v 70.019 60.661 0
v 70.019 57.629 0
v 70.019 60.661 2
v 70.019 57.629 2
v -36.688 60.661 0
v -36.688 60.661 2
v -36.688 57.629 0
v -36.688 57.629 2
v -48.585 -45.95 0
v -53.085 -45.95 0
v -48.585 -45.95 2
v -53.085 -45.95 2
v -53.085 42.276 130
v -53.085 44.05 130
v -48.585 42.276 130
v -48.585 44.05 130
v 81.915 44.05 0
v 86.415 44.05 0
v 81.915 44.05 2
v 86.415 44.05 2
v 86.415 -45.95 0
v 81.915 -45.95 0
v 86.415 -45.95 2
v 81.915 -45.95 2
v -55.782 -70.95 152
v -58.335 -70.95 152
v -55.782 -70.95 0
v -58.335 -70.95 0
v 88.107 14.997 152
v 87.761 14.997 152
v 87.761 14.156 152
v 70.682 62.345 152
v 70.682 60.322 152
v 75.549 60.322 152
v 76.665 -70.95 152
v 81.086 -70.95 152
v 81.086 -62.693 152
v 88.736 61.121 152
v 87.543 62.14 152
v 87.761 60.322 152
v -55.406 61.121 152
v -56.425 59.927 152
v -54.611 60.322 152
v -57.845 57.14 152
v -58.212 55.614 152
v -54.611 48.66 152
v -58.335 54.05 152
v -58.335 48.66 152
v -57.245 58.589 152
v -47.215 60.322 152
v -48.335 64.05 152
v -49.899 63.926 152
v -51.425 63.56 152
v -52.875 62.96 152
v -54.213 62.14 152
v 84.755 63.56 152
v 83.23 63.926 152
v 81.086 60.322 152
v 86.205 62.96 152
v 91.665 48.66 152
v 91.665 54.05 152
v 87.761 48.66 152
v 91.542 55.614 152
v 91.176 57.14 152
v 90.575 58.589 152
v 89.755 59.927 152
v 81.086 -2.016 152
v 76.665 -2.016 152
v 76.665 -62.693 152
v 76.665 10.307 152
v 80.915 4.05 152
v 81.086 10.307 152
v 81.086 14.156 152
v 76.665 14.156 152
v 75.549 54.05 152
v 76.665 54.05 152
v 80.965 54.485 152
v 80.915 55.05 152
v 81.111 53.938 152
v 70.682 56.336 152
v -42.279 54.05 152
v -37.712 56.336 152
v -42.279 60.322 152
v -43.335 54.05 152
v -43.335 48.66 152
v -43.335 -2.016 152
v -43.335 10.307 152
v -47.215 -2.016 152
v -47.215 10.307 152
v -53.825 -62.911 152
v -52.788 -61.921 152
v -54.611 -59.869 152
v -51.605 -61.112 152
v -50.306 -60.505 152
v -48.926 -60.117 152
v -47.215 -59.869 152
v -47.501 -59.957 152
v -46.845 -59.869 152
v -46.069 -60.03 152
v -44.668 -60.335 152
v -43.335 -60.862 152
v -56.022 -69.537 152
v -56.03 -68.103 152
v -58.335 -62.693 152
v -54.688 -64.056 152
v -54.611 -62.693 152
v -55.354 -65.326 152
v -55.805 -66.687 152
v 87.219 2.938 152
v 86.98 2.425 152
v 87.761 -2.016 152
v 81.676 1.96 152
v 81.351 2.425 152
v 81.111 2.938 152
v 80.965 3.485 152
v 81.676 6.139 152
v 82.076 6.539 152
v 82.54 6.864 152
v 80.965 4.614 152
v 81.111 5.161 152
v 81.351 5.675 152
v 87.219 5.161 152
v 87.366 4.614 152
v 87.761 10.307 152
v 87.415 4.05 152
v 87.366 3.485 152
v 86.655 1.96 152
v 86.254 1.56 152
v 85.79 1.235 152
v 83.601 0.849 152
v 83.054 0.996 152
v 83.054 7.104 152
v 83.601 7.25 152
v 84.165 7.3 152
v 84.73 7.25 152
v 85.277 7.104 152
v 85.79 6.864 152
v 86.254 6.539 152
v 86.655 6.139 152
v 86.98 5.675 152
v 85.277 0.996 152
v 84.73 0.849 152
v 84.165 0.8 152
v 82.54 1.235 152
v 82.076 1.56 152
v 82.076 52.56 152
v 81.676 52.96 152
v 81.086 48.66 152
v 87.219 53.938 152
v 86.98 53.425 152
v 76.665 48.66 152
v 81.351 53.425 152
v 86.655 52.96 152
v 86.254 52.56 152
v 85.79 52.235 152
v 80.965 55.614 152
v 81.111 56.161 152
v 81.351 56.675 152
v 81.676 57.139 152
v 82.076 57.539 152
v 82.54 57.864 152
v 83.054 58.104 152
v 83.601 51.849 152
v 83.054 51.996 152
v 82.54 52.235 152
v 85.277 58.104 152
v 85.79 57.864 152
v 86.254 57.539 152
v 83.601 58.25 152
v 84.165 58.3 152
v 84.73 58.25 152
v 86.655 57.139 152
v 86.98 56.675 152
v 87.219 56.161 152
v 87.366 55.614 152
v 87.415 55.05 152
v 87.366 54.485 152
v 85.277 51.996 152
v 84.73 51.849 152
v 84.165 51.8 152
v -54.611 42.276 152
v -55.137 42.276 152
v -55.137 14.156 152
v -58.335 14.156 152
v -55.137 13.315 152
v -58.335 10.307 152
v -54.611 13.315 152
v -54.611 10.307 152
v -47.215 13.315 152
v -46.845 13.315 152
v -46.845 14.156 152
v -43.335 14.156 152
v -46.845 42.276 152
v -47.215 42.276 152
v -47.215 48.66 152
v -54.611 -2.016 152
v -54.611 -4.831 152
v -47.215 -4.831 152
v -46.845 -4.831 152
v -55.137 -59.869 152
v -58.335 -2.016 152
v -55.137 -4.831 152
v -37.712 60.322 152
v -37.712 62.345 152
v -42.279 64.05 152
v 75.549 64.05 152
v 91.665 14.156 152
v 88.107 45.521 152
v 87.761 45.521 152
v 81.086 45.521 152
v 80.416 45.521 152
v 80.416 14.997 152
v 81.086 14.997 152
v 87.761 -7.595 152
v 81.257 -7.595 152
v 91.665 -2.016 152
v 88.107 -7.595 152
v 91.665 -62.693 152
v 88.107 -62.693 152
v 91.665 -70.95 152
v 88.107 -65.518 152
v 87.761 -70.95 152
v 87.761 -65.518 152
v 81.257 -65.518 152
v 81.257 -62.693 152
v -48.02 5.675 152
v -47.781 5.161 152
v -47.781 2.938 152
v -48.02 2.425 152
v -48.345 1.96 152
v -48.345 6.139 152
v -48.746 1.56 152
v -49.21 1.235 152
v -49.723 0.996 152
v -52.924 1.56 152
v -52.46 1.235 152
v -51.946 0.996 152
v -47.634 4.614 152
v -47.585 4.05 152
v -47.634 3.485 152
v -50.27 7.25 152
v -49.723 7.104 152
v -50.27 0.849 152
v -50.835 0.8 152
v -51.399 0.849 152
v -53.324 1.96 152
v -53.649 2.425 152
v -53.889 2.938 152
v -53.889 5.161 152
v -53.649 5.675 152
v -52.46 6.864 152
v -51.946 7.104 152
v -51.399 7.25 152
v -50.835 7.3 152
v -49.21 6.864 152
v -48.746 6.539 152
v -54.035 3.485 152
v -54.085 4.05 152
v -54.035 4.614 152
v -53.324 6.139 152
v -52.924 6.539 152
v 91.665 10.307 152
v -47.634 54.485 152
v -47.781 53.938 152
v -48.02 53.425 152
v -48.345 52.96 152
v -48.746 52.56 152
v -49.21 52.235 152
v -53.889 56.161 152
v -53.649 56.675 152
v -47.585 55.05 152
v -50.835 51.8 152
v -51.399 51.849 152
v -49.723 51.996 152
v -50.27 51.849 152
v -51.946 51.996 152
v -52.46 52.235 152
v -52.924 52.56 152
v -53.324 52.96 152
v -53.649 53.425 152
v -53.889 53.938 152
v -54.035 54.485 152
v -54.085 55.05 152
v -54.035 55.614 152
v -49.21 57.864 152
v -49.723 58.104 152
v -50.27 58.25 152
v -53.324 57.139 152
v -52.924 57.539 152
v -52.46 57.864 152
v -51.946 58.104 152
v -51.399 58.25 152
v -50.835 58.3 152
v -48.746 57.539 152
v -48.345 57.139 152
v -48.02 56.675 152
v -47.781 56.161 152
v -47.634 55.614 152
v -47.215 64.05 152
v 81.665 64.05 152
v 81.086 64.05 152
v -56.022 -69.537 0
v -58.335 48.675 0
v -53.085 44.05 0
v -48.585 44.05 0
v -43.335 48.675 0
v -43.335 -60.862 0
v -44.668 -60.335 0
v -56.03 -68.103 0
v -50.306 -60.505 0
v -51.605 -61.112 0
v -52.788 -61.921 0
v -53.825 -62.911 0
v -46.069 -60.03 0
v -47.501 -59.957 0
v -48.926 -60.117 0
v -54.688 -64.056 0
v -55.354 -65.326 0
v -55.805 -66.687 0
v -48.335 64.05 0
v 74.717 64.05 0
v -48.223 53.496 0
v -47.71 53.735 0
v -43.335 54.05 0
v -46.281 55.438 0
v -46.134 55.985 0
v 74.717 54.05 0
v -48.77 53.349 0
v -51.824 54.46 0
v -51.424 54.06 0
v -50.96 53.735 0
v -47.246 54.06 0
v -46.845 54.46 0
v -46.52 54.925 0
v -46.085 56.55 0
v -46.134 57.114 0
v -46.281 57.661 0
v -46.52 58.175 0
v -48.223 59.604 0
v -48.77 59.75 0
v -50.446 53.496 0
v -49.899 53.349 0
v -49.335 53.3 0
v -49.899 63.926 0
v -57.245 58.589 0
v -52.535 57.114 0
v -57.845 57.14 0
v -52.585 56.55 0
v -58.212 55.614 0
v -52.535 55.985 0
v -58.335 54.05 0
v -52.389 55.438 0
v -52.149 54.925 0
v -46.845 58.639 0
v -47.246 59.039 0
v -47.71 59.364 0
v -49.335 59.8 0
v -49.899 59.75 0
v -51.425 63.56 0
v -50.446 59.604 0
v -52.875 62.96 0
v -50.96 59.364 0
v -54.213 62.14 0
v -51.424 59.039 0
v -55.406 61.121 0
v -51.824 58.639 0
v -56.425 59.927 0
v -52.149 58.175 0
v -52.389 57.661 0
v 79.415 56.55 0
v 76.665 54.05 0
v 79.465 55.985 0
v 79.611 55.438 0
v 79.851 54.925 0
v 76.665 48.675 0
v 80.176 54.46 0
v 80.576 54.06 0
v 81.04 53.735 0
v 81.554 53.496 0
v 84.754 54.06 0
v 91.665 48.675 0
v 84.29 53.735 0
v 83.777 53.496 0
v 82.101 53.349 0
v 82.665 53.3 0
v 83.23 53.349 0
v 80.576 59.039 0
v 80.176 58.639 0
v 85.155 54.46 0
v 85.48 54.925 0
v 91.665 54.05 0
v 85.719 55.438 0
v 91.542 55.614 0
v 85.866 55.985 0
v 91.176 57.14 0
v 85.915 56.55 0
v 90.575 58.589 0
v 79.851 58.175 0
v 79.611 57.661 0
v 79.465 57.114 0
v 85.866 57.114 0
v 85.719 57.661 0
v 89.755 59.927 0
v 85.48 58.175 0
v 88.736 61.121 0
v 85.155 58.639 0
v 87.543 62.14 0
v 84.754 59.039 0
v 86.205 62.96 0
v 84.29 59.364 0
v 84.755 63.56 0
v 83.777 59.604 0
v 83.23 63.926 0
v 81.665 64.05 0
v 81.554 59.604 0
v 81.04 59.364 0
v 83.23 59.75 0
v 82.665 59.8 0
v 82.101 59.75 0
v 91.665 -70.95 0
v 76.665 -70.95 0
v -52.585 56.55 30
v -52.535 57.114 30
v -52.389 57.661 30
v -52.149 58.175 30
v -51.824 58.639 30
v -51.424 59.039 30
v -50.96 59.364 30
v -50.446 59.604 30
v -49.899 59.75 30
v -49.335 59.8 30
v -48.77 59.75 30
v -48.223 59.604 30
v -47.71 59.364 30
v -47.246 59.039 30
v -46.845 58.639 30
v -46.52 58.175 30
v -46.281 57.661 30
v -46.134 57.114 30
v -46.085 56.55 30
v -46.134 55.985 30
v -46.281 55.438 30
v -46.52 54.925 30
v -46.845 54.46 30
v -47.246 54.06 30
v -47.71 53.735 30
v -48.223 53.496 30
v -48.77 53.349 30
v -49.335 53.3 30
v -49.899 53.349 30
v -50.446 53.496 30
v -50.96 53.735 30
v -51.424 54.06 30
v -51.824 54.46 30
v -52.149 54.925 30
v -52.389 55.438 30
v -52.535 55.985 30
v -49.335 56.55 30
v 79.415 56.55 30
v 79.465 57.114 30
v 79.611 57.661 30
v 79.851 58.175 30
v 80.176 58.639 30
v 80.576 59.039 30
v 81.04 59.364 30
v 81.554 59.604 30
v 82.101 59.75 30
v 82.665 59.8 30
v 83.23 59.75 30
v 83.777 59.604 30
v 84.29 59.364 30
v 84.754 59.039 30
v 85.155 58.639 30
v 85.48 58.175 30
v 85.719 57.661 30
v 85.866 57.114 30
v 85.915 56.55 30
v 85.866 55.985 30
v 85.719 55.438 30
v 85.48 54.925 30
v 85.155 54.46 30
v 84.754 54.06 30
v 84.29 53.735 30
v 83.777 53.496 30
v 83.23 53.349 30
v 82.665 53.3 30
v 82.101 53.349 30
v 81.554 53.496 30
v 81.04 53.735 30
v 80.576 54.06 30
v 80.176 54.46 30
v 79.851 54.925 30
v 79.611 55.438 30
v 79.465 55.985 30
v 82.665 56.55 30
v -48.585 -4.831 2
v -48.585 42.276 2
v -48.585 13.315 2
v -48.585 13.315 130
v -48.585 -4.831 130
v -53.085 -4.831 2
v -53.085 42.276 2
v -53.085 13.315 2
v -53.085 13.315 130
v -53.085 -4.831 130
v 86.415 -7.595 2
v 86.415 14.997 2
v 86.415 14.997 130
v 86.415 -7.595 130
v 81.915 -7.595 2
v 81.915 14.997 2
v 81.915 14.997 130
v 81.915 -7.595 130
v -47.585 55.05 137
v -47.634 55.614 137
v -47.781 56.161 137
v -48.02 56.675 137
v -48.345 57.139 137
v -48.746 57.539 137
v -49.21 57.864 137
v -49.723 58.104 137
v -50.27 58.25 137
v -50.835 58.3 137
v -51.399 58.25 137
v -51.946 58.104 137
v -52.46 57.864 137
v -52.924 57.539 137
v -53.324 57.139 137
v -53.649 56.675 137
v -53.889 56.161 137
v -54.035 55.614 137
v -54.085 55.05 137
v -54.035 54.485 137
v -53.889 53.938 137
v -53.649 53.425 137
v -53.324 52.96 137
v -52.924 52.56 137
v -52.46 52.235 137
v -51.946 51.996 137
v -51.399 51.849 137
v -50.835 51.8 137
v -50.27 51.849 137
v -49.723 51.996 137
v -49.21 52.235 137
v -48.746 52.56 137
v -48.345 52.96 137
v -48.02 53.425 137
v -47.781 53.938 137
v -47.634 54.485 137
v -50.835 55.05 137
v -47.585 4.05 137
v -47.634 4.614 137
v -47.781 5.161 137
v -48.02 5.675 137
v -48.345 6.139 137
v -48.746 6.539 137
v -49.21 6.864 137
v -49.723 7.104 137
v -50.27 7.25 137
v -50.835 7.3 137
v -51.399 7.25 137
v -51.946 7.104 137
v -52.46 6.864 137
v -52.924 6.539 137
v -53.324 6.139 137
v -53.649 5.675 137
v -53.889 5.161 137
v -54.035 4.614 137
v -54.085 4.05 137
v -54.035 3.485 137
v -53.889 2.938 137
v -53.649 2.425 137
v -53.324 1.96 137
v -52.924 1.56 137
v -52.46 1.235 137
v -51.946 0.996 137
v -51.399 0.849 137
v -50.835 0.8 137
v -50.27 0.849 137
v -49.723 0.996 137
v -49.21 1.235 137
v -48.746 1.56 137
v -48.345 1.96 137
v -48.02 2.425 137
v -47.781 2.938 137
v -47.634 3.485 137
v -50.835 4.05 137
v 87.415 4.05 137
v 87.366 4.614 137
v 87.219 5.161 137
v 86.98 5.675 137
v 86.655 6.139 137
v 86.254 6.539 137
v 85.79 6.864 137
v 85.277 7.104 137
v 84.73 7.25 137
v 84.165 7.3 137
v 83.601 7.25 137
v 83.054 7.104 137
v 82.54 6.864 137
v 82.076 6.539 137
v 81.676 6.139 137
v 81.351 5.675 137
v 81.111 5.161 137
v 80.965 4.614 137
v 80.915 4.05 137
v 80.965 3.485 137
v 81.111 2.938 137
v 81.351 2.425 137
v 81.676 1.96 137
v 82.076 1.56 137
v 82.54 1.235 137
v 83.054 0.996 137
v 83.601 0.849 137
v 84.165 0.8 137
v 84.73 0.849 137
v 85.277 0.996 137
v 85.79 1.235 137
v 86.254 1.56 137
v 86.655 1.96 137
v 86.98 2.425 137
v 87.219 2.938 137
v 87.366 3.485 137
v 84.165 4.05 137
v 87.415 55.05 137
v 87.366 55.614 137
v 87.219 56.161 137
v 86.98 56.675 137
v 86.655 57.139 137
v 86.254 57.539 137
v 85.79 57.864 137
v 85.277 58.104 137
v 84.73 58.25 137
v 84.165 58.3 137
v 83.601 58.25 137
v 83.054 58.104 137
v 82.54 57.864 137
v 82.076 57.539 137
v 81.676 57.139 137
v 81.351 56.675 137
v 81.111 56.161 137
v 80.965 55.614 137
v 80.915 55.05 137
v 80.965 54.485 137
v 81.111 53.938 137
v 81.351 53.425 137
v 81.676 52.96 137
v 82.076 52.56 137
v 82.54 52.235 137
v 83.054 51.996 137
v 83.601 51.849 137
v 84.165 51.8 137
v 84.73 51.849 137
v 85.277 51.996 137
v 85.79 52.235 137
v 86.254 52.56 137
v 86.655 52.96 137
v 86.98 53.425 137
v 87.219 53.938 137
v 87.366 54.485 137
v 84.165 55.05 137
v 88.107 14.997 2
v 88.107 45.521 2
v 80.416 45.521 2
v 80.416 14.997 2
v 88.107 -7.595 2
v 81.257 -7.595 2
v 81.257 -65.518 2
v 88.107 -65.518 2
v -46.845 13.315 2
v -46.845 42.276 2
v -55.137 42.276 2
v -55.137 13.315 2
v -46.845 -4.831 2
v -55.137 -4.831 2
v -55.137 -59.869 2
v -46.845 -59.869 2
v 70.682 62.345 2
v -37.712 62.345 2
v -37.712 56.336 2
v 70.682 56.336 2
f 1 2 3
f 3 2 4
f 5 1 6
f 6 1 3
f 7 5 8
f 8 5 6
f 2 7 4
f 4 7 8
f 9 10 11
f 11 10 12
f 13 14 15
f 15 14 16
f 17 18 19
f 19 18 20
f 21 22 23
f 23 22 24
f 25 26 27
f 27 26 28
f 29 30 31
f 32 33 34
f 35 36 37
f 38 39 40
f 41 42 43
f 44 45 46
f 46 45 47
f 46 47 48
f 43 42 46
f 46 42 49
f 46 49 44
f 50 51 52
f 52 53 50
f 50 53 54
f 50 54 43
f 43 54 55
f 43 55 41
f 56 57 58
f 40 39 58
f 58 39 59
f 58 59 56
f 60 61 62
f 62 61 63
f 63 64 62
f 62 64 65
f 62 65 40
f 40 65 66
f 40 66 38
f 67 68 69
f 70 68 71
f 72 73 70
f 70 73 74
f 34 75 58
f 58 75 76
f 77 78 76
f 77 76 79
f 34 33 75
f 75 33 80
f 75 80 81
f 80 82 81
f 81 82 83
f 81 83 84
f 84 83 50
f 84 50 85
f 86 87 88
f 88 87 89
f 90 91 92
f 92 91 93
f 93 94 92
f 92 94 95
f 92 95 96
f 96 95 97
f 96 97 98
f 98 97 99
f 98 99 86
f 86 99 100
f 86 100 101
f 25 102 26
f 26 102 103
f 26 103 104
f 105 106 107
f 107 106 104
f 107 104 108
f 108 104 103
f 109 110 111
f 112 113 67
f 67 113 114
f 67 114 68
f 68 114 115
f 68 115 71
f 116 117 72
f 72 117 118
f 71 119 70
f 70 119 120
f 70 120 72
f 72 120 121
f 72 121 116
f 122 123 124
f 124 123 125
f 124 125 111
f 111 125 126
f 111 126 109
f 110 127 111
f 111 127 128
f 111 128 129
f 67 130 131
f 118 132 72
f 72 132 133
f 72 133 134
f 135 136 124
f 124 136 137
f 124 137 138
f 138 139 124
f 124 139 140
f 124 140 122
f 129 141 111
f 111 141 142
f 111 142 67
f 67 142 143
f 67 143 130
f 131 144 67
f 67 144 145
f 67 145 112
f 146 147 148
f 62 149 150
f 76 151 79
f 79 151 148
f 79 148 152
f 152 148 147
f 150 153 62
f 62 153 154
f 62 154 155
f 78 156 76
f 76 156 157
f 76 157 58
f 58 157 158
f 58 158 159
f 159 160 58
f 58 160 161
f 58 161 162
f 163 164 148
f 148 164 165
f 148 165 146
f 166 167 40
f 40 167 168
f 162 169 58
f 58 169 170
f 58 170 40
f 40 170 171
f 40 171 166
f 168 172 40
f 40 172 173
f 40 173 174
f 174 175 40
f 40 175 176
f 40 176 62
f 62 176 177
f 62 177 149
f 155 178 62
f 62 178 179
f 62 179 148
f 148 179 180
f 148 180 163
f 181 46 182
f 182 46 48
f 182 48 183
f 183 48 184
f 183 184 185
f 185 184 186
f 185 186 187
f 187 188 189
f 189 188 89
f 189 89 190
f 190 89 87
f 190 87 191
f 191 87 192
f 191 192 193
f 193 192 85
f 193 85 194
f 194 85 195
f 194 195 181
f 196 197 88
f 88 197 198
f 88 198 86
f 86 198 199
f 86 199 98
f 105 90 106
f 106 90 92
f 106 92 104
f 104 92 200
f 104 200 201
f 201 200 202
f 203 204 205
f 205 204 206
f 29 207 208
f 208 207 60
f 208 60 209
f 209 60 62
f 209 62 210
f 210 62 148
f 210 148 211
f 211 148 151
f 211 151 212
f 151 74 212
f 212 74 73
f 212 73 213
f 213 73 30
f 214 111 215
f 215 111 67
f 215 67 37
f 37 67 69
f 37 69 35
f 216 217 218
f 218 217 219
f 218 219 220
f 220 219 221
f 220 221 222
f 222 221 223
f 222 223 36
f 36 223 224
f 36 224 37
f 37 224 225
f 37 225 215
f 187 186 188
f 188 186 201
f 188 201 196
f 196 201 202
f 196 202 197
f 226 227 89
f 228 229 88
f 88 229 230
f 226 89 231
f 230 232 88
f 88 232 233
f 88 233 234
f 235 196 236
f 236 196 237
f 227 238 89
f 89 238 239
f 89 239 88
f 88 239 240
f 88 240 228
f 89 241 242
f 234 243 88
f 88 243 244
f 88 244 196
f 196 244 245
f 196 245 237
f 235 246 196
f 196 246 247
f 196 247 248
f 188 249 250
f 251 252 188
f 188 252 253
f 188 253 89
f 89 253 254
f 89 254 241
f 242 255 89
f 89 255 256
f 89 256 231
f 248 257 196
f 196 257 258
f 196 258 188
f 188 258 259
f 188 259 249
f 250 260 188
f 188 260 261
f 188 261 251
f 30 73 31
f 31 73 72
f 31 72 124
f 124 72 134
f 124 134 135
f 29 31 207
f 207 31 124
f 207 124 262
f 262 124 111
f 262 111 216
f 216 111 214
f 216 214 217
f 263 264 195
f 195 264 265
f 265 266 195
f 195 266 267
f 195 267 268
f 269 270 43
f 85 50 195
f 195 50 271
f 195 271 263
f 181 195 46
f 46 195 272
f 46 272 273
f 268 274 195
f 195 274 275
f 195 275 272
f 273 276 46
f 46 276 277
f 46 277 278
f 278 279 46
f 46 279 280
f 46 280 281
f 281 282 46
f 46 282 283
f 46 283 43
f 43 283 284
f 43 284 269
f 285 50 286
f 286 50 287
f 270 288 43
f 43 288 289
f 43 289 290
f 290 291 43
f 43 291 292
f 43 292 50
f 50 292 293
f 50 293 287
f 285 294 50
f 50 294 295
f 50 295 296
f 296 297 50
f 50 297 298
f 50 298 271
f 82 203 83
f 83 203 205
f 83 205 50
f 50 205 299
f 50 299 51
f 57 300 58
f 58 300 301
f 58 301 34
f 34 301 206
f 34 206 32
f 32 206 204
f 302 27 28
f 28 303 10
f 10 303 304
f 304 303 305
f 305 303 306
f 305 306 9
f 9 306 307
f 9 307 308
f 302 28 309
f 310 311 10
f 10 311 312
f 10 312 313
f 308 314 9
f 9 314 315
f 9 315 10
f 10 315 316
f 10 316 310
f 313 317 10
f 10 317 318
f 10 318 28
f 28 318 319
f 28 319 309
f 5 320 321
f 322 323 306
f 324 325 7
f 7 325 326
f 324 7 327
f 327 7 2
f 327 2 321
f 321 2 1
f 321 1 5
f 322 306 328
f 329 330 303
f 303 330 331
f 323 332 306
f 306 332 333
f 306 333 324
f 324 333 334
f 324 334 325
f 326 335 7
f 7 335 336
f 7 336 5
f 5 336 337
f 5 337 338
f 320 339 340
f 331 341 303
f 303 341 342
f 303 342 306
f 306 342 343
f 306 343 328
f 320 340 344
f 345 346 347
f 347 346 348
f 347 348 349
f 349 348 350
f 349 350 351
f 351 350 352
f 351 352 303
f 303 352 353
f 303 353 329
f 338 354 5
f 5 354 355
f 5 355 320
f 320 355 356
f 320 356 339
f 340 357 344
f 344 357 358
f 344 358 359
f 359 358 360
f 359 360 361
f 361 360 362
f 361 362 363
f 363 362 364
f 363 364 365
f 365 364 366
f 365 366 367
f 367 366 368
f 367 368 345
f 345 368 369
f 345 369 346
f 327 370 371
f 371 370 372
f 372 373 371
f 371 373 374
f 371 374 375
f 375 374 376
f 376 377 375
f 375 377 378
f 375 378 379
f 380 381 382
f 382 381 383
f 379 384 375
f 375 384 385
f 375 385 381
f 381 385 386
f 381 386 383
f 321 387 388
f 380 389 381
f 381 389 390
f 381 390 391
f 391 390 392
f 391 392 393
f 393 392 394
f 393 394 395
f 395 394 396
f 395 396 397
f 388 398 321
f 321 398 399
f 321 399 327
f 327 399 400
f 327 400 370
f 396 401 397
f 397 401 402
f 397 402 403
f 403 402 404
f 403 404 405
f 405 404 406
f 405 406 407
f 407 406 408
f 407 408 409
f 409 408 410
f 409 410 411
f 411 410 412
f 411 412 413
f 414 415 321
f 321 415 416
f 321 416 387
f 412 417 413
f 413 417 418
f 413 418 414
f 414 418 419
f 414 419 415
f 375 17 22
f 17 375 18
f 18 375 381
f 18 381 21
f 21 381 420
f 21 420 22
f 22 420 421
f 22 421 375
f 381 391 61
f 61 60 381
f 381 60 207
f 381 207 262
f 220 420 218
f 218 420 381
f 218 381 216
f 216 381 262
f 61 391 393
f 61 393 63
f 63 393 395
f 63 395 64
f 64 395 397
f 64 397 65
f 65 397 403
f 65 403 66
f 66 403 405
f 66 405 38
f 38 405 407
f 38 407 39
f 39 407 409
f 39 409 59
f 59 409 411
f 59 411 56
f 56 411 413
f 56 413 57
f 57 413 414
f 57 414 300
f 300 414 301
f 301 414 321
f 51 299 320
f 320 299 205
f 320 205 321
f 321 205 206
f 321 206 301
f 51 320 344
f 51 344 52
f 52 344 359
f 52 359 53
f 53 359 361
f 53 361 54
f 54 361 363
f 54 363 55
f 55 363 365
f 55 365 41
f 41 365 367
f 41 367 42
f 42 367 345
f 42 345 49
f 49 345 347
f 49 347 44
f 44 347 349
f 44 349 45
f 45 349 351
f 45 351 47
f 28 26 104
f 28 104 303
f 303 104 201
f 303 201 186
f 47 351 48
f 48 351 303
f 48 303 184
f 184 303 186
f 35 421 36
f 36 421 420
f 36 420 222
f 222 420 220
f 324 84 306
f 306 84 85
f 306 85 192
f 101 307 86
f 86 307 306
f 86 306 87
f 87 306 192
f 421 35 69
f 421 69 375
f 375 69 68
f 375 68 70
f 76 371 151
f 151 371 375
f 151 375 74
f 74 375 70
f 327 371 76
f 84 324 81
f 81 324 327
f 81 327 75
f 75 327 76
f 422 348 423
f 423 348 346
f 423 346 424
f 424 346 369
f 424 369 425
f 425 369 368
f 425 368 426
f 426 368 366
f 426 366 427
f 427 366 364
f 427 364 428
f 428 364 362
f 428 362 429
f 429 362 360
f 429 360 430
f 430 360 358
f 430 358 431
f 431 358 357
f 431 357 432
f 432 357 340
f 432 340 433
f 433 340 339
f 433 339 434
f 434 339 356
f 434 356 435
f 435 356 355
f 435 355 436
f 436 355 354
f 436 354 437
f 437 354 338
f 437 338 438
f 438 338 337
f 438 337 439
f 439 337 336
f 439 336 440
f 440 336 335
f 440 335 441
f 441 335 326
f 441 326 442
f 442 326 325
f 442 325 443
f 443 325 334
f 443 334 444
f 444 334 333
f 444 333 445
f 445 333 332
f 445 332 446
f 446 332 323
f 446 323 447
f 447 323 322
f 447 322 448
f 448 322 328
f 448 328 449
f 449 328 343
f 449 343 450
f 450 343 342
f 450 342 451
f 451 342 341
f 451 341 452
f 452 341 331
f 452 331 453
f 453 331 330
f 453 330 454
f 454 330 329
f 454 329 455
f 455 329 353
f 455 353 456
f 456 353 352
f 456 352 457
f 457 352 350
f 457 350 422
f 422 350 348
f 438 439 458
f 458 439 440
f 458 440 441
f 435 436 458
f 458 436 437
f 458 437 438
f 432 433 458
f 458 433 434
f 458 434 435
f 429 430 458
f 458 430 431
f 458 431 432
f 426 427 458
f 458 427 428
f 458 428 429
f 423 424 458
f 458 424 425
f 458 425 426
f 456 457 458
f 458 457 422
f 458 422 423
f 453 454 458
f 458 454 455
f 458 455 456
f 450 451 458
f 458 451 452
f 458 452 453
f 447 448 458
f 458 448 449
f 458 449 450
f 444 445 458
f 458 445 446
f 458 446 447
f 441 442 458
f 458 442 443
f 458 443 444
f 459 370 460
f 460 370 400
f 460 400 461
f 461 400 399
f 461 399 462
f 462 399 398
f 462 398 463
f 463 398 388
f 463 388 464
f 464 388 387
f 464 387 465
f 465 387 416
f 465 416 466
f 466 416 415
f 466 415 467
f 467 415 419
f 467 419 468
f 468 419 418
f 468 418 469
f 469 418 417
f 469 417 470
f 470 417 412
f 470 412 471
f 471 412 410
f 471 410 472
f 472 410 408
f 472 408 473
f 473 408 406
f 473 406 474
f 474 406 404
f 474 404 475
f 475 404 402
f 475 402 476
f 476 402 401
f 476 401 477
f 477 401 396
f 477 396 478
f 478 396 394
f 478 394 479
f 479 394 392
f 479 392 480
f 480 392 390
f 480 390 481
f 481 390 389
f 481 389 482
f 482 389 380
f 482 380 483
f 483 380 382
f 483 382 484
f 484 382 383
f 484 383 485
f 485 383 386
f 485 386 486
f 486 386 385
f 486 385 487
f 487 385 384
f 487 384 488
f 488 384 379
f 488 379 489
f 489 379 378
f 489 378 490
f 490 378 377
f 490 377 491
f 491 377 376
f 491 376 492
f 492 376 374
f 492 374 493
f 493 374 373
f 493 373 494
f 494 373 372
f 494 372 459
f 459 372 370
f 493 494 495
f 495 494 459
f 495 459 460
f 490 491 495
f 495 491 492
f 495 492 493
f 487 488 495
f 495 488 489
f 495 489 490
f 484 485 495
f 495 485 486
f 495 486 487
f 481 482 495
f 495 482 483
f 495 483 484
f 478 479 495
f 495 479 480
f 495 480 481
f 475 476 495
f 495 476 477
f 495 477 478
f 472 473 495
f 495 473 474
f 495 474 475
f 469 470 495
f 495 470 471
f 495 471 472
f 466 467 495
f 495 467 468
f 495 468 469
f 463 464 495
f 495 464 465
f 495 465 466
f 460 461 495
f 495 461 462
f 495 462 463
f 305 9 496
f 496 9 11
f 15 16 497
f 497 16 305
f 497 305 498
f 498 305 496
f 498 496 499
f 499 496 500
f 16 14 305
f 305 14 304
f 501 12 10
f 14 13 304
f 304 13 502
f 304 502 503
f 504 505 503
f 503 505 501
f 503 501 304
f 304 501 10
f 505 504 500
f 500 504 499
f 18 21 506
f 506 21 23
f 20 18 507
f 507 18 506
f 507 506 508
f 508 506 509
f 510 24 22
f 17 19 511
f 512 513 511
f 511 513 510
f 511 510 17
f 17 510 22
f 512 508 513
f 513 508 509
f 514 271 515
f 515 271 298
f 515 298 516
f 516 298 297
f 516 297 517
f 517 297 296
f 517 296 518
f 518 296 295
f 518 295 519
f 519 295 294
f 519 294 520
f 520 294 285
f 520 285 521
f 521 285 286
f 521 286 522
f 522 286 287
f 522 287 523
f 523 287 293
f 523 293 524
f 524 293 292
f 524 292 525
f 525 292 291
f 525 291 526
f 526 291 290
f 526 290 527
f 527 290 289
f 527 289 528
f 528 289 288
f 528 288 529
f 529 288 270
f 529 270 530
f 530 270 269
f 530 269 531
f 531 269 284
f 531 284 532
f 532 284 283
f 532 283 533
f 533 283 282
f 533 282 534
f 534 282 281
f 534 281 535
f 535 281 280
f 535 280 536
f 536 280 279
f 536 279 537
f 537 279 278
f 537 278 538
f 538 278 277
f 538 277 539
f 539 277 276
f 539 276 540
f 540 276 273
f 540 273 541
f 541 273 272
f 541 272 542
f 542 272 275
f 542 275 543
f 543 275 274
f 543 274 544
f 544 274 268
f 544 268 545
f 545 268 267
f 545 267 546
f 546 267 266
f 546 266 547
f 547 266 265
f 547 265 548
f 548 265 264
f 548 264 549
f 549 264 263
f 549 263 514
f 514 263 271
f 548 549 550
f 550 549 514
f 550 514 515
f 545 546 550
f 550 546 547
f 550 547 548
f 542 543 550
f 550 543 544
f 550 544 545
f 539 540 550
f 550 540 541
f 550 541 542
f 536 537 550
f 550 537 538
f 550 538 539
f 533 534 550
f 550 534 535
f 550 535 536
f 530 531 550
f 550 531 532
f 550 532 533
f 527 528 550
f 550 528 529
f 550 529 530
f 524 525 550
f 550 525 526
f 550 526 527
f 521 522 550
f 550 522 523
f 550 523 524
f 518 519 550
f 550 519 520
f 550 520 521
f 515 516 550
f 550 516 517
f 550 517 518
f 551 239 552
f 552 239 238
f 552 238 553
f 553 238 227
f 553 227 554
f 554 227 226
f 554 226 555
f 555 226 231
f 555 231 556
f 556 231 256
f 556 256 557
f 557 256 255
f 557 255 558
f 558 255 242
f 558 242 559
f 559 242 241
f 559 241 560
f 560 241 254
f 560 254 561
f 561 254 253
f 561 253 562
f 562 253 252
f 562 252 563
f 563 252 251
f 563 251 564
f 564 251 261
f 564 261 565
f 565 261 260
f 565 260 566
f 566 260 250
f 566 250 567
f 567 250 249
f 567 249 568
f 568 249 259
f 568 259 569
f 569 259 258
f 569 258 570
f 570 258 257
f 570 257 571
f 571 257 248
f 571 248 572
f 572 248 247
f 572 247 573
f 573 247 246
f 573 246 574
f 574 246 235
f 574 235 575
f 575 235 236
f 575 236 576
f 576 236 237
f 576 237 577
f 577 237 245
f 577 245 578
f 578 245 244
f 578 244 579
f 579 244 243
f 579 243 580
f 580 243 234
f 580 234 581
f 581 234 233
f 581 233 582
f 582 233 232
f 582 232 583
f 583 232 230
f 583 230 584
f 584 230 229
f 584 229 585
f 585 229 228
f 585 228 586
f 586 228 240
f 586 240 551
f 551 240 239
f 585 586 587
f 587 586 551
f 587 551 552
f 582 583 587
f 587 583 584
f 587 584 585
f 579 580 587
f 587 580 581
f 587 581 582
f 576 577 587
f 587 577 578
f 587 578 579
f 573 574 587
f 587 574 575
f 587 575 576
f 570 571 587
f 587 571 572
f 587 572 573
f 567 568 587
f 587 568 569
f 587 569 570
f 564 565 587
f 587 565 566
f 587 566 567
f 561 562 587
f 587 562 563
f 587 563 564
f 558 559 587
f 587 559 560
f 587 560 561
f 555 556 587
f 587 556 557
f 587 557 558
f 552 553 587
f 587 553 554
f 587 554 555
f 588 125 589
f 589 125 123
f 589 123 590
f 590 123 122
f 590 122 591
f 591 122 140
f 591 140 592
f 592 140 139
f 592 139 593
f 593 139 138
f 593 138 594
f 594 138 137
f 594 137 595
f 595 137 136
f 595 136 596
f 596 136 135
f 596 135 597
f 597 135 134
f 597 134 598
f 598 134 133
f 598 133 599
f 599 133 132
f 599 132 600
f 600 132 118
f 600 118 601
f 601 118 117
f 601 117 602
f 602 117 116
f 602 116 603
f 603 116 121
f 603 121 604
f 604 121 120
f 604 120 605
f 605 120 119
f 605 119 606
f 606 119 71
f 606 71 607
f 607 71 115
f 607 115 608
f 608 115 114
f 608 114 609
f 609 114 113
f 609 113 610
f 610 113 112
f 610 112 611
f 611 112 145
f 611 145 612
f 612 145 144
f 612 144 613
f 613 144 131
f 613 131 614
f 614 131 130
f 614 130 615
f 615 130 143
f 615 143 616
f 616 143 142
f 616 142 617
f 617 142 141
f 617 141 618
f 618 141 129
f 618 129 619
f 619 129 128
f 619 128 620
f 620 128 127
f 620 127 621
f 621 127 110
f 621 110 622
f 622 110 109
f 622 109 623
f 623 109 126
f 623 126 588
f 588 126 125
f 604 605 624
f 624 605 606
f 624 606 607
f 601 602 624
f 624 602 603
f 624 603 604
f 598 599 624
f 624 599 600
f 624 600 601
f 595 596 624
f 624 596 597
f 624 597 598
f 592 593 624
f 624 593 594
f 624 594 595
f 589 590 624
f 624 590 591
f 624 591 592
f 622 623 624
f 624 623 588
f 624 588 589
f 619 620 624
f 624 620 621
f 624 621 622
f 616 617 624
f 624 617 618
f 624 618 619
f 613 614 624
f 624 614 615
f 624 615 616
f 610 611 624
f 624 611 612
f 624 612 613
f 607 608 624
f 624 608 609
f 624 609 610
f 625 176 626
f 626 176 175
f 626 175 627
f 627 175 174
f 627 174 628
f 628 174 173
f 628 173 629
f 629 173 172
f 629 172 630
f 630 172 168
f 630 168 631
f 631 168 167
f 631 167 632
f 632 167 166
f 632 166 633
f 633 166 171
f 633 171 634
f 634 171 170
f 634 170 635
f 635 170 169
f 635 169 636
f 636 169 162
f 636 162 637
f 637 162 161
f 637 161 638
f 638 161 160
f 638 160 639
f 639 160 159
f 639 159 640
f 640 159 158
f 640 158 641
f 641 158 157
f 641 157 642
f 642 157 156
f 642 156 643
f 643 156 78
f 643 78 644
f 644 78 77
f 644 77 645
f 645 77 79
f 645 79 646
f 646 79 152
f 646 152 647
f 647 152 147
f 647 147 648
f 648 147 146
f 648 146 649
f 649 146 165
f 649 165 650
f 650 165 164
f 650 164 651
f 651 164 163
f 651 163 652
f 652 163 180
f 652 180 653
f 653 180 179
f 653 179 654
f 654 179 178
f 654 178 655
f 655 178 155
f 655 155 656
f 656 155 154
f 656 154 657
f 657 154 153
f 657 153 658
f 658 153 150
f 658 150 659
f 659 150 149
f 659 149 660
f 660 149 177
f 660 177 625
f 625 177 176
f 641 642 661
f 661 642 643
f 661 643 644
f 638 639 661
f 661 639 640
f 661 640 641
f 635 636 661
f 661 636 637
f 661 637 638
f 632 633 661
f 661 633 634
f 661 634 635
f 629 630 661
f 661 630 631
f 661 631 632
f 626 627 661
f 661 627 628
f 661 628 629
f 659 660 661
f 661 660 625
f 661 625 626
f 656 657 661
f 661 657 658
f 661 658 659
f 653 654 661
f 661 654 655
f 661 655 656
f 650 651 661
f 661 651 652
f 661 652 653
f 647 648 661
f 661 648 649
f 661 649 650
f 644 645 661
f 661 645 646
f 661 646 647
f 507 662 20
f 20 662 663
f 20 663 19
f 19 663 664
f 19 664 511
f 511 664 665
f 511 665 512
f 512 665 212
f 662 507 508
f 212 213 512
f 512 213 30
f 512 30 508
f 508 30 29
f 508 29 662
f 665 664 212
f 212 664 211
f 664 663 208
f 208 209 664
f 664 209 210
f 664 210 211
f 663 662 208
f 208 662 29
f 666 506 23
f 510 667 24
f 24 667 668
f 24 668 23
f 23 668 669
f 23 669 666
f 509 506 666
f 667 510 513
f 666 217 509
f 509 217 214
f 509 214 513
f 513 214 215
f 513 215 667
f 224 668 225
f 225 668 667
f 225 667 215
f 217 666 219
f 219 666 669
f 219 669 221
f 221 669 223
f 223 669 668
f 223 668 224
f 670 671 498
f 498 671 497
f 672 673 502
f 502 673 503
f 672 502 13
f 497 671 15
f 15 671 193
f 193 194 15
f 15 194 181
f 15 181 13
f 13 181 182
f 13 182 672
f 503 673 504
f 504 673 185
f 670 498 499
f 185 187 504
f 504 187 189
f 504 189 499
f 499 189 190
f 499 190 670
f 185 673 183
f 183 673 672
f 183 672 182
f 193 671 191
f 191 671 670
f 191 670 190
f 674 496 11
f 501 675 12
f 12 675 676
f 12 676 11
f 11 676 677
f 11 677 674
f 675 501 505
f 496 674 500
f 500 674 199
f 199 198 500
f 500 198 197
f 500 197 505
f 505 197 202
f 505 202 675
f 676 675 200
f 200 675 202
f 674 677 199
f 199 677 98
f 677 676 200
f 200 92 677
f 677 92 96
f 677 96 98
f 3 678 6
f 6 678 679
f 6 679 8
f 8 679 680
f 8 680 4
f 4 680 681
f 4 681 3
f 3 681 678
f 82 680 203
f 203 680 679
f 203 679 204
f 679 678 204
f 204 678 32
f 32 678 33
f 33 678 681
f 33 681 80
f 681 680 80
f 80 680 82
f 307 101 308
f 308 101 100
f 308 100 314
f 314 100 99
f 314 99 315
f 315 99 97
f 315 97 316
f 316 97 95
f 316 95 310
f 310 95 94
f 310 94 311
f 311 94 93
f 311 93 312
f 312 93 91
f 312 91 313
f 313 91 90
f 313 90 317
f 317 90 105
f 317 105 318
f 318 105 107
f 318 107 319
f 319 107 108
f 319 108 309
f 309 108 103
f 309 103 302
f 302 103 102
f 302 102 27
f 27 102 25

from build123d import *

# Parameters (mm, degrees)
SKETCH2_W           = 120
SKETCH2_H           = 115
BOSS_EXTRUDE1_DEPTH = 152
SKETCH3_W           = 120
SKETCH3_H           = 13.389184999
CUT_EXTRUDE1_DEPTH  = 192.155706765
SKETCH5_R           = 3.25
CUT_EXTRUDE2_DEPTH  = 30
SKETCH6_W           = 4.5
SKETCH6_H           = 90
SKETCH6_W_2         = 106.706999447
SKETCH6_H_2         = 3.032111459
CUT_EXTRUDE4_DEPTH  = 130
SKETCH7_R           = 3.25
CUT_EXTRUDE5_DEPTH  = 15
SKETCH8_W           = 8.291807731
SKETCH8_H           = 28.961241497
SKETCH8_H_2         = 55.038375958
SKETCH8_W_2         = 108.394356143
SKETCH8_H_3         = 6.008556327
SKETCH8_W_3         = 7.690952099
SKETCH8_H_4         = 30.523466142
SKETCH8_W_4         = 6.849754213
SKETCH8_H_5         = 57.922482994
CUT_EXTRUDE6_DEPTH  = 150
CUT_EXTRUDE7_DEPTH  = 192.155706765


with BuildPart() as part:
    # Sketch2 → Boss-Extrude1 (new body)
    with BuildSketch(Plane.XY):
        with BuildLine():
            Line((-48.334664537, 64.049520767), (81.665335463, 64.049520767))
            ThreePointArc((81.665335463, 64.049520767), (88.736403275, 61.120588579), (91.665335463, 54.049520767))
            Line((91.665335463, 54.049520767), (91.665335463, -70.950479233))
            Line((91.665335463, -70.950479233), (-58.334664537, -70.950479233))
            Line((-58.334664537, -70.950479233), (-58.334664537, 54.049520767))
            ThreePointArc((-58.334664537, 54.049520767), (-55.405732349, 61.120588579), (-48.334664537, 64.049520767))
        make_face()
        with Locations((16.665335463, -3.450479233)):
            Rectangle(SKETCH2_W, SKETCH2_H, mode=Mode.SUBTRACT)
    extrude(amount=BOSS_EXTRUDE1_DEPTH)

    # Sketch3 → Cut-Extrude1 (cut, through all)
    with BuildSketch(Plane.XY.offset(152)):
        with Locations((16.665335463, -67.645071732)):
            Rectangle(SKETCH3_W, SKETCH3_H)
    extrude(amount=-CUT_EXTRUDE1_DEPTH, mode=Mode.SUBTRACT)

    # Sketch5 → Cut-Extrude2 (cut)
    with BuildSketch(Plane(origin=(0, 0, 0), x_dir=(-1, 0, 0), z_dir=(0, 0, -1))):
        with Locations((-82.665335463, 56.549520767)):
            Circle(SKETCH5_R)
        with Locations((49.334664537, 56.549520767)):
            Circle(SKETCH5_R)
    extrude(amount=-CUT_EXTRUDE2_DEPTH, mode=Mode.SUBTRACT)

    # Sketch6 → Cut-Extrude4 (cut)
    with BuildSketch(Plane(origin=(0, 0, 0), x_dir=(-1, 0, 0), z_dir=(0, 0, -1))):
        with Locations((50.834664537, -0.950479233)):
            Rectangle(SKETCH6_W, SKETCH6_H)
        with Locations((-84.165335463, -0.950479233)):
            Rectangle(SKETCH6_W, SKETCH6_H)
        with Locations((-16.665335464, 59.14514242)):
            Rectangle(SKETCH6_W_2, SKETCH6_H_2)
    extrude(amount=-CUT_EXTRUDE4_DEPTH, mode=Mode.SUBTRACT)

    # Sketch7 → Cut-Extrude5 (cut)
    with BuildSketch(Plane.XY.offset(152)):
        with Locations((-50.834664537, 55.049520767)):
            Circle(SKETCH7_R)
        with Locations((-50.834664537, 4.049520767)):
            Circle(SKETCH7_R)
        with Locations((84.165335463, 4.049520767)):
            Circle(SKETCH7_R)
        with Locations((84.165335463, 55.049520767)):
            Circle(SKETCH7_R)
    extrude(amount=-CUT_EXTRUDE5_DEPTH, mode=Mode.SUBTRACT)

    # Sketch8 → Cut-Extrude6 (cut)
    with BuildSketch(Plane.XY.offset(152)):
        with Locations((-50.991008781, 27.795371112)):
            Rectangle(SKETCH8_W, SKETCH8_H)
        with Locations((-50.991008781, -32.350277723)):
            Rectangle(SKETCH8_W, SKETCH8_H_2)
        with Locations((16.485078773, 59.340291831)):
            Rectangle(SKETCH8_W_2, SKETCH8_H_3)
        with Locations((84.261594145, 30.258879207)):
            Rectangle(SKETCH8_W_3, SKETCH8_H_4)
        with Locations((84.682193087, -36.556267152)):
            Rectangle(SKETCH8_W_4, SKETCH8_H_5)
    extrude(amount=-CUT_EXTRUDE6_DEPTH, mode=Mode.SUBTRACT)

    # Sketch9 → Cut-Extrude7 (cut, through all)
    with BuildSketch(Plane.XY.offset(152)):
        with BuildLine():
            Line((-55.78242584, -70.950479233), (-43.00561738, -70.950479233))
            Line((-43.00561738, -70.950479233), (-43.00561738, -60.861864812))
            Line((-43.00561738, -60.861864812), (-43.334664537, -60.861864812))
            ThreePointArc((-43.334664537, -60.861864812), (-52.78845028, -61.92097783), (-55.78242584, -70.950479233))
        make_face()
    extrude(amount=-CUT_EXTRUDE7_DEPTH, mode=Mode.SUBTRACT)


solid = part.part
